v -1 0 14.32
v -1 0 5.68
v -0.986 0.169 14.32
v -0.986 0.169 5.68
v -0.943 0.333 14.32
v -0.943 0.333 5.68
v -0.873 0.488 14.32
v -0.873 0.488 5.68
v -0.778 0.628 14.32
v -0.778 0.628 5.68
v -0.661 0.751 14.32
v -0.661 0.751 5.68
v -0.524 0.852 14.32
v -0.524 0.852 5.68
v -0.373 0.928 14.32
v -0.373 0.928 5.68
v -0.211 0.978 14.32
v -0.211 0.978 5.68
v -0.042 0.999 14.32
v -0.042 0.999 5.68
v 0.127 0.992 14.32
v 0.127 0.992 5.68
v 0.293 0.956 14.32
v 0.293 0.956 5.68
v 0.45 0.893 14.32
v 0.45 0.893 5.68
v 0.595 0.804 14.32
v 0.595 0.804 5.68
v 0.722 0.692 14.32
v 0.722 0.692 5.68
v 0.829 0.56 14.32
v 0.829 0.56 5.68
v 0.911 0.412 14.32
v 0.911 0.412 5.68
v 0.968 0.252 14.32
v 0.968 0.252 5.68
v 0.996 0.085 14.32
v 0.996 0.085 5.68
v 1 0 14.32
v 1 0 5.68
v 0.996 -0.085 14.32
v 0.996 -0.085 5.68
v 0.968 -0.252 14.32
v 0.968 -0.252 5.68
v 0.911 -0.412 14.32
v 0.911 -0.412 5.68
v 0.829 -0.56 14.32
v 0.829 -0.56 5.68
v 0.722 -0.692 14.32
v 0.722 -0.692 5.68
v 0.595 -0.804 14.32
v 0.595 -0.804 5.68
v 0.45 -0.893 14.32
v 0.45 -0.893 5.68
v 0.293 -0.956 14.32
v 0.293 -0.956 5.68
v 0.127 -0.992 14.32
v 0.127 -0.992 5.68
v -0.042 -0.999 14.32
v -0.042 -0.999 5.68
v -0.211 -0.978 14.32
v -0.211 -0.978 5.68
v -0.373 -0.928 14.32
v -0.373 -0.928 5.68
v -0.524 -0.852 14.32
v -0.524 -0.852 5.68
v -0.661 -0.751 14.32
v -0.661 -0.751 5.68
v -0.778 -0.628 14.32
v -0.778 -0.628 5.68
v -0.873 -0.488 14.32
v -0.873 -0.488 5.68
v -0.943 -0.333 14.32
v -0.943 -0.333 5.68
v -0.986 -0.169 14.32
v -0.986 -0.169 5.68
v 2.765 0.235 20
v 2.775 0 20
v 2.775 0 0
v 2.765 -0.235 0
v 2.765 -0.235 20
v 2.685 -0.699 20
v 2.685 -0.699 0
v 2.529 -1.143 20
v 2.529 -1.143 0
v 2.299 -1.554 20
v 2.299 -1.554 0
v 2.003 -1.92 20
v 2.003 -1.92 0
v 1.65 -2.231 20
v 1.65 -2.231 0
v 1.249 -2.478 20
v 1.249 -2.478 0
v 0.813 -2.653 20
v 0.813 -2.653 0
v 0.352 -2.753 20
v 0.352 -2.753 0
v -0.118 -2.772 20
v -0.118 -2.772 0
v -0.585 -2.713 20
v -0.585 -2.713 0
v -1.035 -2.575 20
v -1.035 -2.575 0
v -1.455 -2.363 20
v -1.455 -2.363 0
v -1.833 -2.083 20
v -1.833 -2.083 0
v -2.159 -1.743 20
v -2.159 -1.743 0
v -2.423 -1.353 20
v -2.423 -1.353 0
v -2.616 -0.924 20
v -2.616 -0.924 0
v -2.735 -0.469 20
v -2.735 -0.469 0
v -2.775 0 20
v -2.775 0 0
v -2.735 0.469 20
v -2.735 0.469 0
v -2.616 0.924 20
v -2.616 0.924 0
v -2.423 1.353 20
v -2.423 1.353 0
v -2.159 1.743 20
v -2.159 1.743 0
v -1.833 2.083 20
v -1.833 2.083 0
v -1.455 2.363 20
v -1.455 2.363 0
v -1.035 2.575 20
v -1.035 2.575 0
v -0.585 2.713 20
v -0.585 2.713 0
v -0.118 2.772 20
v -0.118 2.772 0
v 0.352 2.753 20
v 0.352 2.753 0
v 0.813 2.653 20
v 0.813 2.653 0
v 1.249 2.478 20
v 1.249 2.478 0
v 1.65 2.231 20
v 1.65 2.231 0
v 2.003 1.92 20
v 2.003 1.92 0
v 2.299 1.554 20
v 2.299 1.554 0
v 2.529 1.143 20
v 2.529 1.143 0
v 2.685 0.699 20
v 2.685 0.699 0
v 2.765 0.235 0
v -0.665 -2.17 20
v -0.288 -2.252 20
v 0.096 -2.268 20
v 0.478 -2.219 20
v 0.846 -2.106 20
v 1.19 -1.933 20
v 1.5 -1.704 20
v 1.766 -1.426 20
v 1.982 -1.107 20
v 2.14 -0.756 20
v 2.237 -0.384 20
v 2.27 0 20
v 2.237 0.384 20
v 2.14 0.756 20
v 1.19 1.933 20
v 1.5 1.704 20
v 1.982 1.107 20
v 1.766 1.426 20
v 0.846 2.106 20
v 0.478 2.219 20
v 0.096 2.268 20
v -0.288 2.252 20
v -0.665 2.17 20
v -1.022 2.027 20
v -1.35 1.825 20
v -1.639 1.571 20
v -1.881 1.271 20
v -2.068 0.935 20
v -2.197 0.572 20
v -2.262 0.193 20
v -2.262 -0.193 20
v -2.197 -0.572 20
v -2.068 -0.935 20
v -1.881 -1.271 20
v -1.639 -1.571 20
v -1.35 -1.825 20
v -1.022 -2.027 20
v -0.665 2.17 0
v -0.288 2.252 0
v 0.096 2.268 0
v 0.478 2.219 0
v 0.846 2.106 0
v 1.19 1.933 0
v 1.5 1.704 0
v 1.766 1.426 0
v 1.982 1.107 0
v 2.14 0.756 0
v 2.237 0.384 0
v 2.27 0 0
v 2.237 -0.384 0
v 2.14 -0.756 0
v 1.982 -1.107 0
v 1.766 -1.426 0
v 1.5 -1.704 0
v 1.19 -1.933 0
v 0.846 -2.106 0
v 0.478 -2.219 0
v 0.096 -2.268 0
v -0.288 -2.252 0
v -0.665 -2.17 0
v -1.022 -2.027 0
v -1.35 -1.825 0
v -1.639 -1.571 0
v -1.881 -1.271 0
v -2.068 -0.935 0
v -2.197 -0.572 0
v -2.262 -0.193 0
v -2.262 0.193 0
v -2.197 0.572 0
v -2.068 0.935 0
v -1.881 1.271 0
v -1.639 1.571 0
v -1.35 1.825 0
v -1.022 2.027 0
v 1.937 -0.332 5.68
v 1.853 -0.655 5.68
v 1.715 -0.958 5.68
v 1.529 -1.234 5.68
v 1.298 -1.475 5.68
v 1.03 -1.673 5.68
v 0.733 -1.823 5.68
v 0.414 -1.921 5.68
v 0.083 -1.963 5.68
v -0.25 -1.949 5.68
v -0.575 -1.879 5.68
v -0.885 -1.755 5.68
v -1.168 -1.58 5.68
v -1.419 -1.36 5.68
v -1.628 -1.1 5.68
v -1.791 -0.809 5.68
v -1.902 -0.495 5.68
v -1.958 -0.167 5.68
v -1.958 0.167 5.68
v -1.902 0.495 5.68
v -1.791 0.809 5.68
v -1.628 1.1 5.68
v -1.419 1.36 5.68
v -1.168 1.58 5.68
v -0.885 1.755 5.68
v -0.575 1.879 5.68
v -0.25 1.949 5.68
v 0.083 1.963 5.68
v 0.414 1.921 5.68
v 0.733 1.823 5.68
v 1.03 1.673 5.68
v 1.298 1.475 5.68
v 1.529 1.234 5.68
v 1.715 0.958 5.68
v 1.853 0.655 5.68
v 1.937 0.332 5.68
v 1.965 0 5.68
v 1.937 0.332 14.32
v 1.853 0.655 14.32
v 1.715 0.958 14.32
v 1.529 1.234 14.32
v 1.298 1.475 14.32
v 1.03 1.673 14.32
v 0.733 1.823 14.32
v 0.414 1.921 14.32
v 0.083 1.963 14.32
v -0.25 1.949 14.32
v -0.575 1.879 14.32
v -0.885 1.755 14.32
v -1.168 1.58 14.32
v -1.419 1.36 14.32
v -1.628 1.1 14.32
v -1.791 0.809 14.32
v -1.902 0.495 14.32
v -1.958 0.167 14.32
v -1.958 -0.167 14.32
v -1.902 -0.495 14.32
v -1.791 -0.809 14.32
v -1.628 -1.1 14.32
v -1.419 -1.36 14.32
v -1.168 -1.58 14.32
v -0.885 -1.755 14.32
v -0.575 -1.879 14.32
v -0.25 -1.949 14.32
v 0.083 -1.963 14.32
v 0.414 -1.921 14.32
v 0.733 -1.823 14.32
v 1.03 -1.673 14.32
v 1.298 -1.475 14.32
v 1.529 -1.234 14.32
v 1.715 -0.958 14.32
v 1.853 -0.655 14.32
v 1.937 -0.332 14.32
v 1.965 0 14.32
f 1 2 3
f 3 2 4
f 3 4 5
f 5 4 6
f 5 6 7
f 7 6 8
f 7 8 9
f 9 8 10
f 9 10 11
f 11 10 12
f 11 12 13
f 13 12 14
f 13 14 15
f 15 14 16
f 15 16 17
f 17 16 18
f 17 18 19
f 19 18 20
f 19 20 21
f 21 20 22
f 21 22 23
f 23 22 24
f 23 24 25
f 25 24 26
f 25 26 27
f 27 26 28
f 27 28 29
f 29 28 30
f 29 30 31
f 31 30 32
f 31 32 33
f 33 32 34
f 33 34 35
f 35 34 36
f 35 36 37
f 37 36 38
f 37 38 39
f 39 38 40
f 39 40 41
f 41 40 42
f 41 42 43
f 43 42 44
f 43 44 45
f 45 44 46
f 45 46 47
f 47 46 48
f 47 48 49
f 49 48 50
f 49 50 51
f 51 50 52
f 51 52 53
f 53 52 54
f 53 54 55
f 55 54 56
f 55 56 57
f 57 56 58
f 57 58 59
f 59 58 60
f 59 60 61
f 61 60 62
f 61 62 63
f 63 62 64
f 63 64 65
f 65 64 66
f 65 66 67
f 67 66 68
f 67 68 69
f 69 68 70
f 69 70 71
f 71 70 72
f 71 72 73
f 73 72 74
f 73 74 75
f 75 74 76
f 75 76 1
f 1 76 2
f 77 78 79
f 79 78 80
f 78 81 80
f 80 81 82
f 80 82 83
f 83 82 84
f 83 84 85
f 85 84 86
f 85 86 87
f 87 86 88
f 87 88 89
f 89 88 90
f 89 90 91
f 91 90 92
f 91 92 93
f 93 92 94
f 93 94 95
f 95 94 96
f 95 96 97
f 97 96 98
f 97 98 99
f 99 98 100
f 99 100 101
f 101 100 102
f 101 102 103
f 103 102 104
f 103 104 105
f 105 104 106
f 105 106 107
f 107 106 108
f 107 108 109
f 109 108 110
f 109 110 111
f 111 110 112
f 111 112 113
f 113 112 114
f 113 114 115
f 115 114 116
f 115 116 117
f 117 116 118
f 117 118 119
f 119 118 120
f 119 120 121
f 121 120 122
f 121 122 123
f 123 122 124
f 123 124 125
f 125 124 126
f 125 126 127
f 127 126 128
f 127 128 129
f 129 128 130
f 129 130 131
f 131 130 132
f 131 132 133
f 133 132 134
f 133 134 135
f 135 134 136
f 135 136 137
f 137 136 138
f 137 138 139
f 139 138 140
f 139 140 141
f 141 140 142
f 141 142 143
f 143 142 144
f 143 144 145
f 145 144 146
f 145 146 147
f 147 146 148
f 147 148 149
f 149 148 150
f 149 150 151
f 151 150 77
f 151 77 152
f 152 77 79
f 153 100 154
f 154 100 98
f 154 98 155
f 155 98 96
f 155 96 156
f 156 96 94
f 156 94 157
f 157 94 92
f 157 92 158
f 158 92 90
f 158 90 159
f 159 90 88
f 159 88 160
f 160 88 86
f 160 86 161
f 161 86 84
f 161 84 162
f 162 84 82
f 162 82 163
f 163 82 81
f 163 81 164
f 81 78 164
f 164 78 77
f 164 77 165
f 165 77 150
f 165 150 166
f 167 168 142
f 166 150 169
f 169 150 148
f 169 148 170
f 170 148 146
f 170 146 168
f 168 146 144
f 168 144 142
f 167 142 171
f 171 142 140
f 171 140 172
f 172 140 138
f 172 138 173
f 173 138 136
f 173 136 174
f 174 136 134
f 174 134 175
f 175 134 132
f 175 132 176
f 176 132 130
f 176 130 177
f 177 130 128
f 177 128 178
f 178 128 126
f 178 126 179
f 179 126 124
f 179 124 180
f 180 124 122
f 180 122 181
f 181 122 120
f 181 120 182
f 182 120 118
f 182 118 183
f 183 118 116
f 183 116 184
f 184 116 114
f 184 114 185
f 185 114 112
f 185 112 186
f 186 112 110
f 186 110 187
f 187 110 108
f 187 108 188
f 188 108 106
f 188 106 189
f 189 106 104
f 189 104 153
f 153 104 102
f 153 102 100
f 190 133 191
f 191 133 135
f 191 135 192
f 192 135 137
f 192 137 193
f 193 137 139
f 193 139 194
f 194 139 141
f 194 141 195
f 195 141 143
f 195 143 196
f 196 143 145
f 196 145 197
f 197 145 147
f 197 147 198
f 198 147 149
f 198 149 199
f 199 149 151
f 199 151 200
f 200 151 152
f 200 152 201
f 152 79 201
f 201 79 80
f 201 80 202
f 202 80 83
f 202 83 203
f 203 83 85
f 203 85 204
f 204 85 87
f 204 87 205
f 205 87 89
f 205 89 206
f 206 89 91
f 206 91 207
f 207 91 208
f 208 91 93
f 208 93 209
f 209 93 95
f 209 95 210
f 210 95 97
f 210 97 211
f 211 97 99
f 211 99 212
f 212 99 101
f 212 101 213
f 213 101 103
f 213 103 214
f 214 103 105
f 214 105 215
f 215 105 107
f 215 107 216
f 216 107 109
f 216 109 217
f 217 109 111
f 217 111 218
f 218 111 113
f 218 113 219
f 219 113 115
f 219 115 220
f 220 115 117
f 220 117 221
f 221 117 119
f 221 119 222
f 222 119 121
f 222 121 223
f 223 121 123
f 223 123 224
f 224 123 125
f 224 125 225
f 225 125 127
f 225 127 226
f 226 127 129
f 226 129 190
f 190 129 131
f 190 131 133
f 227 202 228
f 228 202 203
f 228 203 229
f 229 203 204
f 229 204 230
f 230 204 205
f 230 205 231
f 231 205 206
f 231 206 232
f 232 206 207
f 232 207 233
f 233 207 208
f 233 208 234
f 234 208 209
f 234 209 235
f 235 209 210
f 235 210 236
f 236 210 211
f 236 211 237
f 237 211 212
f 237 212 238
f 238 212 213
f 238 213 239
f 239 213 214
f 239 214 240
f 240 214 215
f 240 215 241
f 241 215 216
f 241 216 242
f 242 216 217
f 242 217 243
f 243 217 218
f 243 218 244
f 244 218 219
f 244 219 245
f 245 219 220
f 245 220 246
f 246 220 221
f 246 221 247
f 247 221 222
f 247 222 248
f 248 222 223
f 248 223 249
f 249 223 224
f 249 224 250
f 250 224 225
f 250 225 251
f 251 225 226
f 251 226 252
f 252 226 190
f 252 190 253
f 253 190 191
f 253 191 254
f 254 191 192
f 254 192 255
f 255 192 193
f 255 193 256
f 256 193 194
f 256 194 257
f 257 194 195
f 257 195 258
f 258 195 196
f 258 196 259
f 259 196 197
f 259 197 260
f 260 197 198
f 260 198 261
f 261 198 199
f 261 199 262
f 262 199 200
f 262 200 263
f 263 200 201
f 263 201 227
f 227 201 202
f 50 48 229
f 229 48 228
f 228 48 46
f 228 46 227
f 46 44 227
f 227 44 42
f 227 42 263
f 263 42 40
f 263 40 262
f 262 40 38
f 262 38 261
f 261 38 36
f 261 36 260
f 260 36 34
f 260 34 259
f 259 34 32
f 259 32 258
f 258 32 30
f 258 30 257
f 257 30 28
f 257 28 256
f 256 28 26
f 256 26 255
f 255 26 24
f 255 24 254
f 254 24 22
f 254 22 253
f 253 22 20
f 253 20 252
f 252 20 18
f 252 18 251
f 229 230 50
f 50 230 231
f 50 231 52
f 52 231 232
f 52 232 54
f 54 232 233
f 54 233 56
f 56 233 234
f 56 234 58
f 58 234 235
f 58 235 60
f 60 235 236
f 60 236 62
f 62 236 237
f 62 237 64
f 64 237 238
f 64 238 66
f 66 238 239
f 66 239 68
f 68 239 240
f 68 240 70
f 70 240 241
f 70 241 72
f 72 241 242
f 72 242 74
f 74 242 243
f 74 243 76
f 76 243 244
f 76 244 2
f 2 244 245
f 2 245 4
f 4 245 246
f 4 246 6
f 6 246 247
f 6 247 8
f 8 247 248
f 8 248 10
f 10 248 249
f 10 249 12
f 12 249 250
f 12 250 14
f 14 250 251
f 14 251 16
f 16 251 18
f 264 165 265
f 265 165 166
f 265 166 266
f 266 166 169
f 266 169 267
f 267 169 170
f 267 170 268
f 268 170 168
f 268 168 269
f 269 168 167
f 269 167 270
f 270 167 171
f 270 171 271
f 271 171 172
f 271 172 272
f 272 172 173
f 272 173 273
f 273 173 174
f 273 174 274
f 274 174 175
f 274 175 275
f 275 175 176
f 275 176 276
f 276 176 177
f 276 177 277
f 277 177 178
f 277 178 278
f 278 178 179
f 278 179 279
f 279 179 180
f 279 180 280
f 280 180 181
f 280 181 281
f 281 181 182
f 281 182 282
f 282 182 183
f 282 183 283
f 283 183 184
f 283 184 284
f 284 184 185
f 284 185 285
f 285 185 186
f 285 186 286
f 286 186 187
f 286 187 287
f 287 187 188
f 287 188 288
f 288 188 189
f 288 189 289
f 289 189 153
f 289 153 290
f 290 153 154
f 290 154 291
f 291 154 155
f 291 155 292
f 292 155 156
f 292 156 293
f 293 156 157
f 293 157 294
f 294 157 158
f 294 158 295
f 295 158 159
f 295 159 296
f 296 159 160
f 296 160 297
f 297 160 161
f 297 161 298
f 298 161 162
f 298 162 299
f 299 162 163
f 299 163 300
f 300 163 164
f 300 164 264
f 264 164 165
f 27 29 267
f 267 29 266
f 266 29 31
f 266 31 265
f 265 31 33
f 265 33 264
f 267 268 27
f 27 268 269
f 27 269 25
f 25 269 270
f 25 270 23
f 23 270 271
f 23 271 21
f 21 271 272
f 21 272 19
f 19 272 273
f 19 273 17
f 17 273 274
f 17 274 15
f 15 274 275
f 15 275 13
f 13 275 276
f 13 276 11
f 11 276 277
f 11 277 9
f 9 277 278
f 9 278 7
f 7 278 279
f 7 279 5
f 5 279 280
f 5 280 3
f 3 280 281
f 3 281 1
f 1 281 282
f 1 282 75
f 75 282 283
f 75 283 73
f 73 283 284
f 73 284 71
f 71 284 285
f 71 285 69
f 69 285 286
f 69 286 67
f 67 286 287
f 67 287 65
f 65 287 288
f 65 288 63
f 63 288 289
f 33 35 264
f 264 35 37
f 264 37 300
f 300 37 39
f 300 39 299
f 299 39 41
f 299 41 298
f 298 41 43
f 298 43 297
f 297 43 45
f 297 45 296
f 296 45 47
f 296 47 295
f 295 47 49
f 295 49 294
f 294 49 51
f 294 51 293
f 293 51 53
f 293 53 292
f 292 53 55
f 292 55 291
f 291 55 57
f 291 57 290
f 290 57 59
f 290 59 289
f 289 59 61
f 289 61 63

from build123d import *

# Parameters (mm, degrees)
SKETCH1_R           = 2.775
BOSS_EXTRUDE1_DEPTH = 20
SKETCH2_R           = 2.27
CUT_EXTRUDE1_DEPTH  = 5.68
CUT_EXTRUDE1_TAPER  = 3.074
SKETCH7_R           = 1
CUT_EXTRUDE2_DEPTH  = 21
SKETCH9_R           = 2.27
CUT_EXTRUDE3_DEPTH  = 5.68
CUT_EXTRUDE3_TAPER  = 3.074


with BuildPart() as part:
    # Sketch1 → Boss-Extrude1 (new body)
    with BuildSketch(Plane.XY):
        Circle(SKETCH1_R)
    extrude(amount=BOSS_EXTRUDE1_DEPTH)

    # Sketch2 → Cut-Extrude1 (cut)
    with BuildSketch(Plane.XY):
        Circle(SKETCH2_R)
    extrude(amount=CUT_EXTRUDE1_DEPTH, taper=CUT_EXTRUDE1_TAPER, mode=Mode.SUBTRACT)

    # Sketch7 → Cut-Extrude2 (cut, through all)
    with BuildSketch(Plane.XY):
        Circle(SKETCH7_R)
    extrude(amount=CUT_EXTRUDE2_DEPTH, mode=Mode.SUBTRACT)

    # Sketch9 → Cut-Extrude3 (cut)
    with BuildSketch(Plane.XY.offset(20)):
        Circle(SKETCH9_R)
    extrude(amount=-CUT_EXTRUDE3_DEPTH, taper=CUT_EXTRUDE3_TAPER, mode=Mode.SUBTRACT)


solid = part.part
